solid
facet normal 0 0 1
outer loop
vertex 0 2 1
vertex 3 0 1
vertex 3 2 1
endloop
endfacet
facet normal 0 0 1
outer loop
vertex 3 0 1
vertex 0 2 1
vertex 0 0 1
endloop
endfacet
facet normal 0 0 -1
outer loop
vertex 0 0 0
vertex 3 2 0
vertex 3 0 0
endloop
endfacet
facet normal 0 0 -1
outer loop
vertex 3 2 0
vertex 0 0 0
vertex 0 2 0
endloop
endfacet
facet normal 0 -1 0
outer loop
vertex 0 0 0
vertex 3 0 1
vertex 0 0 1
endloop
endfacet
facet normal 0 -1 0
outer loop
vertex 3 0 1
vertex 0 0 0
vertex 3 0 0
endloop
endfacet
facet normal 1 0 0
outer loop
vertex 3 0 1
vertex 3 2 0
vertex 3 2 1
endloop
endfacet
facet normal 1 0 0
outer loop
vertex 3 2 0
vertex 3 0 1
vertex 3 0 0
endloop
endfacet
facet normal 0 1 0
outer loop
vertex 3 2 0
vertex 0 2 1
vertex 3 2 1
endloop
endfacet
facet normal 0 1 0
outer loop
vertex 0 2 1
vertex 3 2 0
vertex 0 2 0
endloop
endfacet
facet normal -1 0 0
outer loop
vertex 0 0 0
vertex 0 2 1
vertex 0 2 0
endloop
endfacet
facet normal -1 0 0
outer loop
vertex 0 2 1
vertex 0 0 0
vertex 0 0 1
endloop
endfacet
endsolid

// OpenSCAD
/* Warning, this is a very basic generator with a lot of approximation 
input data : [VDFN, JEA, 3x2mm, 8, , A, C04-01210A]
generated by com.zoubworld.electronics.cad.model3d.Basic
Date : Sun Feb 15 10:50:49 CET 2026
*/

//body
color("black")
translate([0,0,0])
cube([3.0,2.0,1.0], center=false);
